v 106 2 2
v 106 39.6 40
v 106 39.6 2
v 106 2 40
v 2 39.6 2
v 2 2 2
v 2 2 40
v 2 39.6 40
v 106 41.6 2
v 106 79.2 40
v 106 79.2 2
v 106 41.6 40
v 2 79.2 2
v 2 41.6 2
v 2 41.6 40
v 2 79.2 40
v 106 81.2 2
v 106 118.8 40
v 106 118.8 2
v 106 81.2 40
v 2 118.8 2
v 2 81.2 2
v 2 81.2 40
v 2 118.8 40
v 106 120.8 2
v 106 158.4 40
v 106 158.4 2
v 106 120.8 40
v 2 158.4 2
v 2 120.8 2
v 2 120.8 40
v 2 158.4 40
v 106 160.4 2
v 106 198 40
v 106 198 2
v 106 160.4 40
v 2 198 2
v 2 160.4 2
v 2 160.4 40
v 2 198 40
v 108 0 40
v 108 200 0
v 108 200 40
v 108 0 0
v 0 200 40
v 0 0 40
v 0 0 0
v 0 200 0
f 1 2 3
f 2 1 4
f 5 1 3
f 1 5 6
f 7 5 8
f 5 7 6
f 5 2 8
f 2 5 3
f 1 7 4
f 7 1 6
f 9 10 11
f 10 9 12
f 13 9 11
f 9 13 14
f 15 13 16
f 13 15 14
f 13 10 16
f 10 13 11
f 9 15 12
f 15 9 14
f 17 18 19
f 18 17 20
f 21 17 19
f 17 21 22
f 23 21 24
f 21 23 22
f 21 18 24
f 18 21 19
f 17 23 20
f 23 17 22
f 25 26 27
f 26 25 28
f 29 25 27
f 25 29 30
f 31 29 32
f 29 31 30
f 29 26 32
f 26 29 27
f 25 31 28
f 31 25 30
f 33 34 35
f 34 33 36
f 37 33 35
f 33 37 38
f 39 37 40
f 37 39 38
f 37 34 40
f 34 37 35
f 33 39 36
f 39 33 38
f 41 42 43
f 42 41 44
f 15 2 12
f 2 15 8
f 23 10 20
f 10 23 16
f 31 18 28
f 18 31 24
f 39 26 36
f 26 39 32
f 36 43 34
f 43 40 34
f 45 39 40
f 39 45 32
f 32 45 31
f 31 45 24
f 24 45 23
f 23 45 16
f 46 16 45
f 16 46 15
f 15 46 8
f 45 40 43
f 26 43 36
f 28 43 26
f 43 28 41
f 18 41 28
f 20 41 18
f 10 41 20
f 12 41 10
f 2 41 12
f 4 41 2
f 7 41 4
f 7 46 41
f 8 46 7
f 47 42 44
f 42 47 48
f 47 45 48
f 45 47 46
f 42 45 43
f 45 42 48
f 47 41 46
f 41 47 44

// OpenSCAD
// Parametric spice box
width = 108;
depth = 200;
height = 40;
thickness = 2;
compartments = 5; // number of compartments in the depth direction

// Derived values
compartmentWidth = width - 2 * thickness;
compartmentDepth = (depth - (compartments + 1) * thickness) / compartments;

difference() {
    cube([width, depth, height]);

    for (i = [0 : compartments - 1]) {
        translate([
            thickness,
            thickness + i * (compartmentDepth + thickness),
            thickness
        ])
        cube([compartmentWidth, compartmentDepth, height]);
    }
}
